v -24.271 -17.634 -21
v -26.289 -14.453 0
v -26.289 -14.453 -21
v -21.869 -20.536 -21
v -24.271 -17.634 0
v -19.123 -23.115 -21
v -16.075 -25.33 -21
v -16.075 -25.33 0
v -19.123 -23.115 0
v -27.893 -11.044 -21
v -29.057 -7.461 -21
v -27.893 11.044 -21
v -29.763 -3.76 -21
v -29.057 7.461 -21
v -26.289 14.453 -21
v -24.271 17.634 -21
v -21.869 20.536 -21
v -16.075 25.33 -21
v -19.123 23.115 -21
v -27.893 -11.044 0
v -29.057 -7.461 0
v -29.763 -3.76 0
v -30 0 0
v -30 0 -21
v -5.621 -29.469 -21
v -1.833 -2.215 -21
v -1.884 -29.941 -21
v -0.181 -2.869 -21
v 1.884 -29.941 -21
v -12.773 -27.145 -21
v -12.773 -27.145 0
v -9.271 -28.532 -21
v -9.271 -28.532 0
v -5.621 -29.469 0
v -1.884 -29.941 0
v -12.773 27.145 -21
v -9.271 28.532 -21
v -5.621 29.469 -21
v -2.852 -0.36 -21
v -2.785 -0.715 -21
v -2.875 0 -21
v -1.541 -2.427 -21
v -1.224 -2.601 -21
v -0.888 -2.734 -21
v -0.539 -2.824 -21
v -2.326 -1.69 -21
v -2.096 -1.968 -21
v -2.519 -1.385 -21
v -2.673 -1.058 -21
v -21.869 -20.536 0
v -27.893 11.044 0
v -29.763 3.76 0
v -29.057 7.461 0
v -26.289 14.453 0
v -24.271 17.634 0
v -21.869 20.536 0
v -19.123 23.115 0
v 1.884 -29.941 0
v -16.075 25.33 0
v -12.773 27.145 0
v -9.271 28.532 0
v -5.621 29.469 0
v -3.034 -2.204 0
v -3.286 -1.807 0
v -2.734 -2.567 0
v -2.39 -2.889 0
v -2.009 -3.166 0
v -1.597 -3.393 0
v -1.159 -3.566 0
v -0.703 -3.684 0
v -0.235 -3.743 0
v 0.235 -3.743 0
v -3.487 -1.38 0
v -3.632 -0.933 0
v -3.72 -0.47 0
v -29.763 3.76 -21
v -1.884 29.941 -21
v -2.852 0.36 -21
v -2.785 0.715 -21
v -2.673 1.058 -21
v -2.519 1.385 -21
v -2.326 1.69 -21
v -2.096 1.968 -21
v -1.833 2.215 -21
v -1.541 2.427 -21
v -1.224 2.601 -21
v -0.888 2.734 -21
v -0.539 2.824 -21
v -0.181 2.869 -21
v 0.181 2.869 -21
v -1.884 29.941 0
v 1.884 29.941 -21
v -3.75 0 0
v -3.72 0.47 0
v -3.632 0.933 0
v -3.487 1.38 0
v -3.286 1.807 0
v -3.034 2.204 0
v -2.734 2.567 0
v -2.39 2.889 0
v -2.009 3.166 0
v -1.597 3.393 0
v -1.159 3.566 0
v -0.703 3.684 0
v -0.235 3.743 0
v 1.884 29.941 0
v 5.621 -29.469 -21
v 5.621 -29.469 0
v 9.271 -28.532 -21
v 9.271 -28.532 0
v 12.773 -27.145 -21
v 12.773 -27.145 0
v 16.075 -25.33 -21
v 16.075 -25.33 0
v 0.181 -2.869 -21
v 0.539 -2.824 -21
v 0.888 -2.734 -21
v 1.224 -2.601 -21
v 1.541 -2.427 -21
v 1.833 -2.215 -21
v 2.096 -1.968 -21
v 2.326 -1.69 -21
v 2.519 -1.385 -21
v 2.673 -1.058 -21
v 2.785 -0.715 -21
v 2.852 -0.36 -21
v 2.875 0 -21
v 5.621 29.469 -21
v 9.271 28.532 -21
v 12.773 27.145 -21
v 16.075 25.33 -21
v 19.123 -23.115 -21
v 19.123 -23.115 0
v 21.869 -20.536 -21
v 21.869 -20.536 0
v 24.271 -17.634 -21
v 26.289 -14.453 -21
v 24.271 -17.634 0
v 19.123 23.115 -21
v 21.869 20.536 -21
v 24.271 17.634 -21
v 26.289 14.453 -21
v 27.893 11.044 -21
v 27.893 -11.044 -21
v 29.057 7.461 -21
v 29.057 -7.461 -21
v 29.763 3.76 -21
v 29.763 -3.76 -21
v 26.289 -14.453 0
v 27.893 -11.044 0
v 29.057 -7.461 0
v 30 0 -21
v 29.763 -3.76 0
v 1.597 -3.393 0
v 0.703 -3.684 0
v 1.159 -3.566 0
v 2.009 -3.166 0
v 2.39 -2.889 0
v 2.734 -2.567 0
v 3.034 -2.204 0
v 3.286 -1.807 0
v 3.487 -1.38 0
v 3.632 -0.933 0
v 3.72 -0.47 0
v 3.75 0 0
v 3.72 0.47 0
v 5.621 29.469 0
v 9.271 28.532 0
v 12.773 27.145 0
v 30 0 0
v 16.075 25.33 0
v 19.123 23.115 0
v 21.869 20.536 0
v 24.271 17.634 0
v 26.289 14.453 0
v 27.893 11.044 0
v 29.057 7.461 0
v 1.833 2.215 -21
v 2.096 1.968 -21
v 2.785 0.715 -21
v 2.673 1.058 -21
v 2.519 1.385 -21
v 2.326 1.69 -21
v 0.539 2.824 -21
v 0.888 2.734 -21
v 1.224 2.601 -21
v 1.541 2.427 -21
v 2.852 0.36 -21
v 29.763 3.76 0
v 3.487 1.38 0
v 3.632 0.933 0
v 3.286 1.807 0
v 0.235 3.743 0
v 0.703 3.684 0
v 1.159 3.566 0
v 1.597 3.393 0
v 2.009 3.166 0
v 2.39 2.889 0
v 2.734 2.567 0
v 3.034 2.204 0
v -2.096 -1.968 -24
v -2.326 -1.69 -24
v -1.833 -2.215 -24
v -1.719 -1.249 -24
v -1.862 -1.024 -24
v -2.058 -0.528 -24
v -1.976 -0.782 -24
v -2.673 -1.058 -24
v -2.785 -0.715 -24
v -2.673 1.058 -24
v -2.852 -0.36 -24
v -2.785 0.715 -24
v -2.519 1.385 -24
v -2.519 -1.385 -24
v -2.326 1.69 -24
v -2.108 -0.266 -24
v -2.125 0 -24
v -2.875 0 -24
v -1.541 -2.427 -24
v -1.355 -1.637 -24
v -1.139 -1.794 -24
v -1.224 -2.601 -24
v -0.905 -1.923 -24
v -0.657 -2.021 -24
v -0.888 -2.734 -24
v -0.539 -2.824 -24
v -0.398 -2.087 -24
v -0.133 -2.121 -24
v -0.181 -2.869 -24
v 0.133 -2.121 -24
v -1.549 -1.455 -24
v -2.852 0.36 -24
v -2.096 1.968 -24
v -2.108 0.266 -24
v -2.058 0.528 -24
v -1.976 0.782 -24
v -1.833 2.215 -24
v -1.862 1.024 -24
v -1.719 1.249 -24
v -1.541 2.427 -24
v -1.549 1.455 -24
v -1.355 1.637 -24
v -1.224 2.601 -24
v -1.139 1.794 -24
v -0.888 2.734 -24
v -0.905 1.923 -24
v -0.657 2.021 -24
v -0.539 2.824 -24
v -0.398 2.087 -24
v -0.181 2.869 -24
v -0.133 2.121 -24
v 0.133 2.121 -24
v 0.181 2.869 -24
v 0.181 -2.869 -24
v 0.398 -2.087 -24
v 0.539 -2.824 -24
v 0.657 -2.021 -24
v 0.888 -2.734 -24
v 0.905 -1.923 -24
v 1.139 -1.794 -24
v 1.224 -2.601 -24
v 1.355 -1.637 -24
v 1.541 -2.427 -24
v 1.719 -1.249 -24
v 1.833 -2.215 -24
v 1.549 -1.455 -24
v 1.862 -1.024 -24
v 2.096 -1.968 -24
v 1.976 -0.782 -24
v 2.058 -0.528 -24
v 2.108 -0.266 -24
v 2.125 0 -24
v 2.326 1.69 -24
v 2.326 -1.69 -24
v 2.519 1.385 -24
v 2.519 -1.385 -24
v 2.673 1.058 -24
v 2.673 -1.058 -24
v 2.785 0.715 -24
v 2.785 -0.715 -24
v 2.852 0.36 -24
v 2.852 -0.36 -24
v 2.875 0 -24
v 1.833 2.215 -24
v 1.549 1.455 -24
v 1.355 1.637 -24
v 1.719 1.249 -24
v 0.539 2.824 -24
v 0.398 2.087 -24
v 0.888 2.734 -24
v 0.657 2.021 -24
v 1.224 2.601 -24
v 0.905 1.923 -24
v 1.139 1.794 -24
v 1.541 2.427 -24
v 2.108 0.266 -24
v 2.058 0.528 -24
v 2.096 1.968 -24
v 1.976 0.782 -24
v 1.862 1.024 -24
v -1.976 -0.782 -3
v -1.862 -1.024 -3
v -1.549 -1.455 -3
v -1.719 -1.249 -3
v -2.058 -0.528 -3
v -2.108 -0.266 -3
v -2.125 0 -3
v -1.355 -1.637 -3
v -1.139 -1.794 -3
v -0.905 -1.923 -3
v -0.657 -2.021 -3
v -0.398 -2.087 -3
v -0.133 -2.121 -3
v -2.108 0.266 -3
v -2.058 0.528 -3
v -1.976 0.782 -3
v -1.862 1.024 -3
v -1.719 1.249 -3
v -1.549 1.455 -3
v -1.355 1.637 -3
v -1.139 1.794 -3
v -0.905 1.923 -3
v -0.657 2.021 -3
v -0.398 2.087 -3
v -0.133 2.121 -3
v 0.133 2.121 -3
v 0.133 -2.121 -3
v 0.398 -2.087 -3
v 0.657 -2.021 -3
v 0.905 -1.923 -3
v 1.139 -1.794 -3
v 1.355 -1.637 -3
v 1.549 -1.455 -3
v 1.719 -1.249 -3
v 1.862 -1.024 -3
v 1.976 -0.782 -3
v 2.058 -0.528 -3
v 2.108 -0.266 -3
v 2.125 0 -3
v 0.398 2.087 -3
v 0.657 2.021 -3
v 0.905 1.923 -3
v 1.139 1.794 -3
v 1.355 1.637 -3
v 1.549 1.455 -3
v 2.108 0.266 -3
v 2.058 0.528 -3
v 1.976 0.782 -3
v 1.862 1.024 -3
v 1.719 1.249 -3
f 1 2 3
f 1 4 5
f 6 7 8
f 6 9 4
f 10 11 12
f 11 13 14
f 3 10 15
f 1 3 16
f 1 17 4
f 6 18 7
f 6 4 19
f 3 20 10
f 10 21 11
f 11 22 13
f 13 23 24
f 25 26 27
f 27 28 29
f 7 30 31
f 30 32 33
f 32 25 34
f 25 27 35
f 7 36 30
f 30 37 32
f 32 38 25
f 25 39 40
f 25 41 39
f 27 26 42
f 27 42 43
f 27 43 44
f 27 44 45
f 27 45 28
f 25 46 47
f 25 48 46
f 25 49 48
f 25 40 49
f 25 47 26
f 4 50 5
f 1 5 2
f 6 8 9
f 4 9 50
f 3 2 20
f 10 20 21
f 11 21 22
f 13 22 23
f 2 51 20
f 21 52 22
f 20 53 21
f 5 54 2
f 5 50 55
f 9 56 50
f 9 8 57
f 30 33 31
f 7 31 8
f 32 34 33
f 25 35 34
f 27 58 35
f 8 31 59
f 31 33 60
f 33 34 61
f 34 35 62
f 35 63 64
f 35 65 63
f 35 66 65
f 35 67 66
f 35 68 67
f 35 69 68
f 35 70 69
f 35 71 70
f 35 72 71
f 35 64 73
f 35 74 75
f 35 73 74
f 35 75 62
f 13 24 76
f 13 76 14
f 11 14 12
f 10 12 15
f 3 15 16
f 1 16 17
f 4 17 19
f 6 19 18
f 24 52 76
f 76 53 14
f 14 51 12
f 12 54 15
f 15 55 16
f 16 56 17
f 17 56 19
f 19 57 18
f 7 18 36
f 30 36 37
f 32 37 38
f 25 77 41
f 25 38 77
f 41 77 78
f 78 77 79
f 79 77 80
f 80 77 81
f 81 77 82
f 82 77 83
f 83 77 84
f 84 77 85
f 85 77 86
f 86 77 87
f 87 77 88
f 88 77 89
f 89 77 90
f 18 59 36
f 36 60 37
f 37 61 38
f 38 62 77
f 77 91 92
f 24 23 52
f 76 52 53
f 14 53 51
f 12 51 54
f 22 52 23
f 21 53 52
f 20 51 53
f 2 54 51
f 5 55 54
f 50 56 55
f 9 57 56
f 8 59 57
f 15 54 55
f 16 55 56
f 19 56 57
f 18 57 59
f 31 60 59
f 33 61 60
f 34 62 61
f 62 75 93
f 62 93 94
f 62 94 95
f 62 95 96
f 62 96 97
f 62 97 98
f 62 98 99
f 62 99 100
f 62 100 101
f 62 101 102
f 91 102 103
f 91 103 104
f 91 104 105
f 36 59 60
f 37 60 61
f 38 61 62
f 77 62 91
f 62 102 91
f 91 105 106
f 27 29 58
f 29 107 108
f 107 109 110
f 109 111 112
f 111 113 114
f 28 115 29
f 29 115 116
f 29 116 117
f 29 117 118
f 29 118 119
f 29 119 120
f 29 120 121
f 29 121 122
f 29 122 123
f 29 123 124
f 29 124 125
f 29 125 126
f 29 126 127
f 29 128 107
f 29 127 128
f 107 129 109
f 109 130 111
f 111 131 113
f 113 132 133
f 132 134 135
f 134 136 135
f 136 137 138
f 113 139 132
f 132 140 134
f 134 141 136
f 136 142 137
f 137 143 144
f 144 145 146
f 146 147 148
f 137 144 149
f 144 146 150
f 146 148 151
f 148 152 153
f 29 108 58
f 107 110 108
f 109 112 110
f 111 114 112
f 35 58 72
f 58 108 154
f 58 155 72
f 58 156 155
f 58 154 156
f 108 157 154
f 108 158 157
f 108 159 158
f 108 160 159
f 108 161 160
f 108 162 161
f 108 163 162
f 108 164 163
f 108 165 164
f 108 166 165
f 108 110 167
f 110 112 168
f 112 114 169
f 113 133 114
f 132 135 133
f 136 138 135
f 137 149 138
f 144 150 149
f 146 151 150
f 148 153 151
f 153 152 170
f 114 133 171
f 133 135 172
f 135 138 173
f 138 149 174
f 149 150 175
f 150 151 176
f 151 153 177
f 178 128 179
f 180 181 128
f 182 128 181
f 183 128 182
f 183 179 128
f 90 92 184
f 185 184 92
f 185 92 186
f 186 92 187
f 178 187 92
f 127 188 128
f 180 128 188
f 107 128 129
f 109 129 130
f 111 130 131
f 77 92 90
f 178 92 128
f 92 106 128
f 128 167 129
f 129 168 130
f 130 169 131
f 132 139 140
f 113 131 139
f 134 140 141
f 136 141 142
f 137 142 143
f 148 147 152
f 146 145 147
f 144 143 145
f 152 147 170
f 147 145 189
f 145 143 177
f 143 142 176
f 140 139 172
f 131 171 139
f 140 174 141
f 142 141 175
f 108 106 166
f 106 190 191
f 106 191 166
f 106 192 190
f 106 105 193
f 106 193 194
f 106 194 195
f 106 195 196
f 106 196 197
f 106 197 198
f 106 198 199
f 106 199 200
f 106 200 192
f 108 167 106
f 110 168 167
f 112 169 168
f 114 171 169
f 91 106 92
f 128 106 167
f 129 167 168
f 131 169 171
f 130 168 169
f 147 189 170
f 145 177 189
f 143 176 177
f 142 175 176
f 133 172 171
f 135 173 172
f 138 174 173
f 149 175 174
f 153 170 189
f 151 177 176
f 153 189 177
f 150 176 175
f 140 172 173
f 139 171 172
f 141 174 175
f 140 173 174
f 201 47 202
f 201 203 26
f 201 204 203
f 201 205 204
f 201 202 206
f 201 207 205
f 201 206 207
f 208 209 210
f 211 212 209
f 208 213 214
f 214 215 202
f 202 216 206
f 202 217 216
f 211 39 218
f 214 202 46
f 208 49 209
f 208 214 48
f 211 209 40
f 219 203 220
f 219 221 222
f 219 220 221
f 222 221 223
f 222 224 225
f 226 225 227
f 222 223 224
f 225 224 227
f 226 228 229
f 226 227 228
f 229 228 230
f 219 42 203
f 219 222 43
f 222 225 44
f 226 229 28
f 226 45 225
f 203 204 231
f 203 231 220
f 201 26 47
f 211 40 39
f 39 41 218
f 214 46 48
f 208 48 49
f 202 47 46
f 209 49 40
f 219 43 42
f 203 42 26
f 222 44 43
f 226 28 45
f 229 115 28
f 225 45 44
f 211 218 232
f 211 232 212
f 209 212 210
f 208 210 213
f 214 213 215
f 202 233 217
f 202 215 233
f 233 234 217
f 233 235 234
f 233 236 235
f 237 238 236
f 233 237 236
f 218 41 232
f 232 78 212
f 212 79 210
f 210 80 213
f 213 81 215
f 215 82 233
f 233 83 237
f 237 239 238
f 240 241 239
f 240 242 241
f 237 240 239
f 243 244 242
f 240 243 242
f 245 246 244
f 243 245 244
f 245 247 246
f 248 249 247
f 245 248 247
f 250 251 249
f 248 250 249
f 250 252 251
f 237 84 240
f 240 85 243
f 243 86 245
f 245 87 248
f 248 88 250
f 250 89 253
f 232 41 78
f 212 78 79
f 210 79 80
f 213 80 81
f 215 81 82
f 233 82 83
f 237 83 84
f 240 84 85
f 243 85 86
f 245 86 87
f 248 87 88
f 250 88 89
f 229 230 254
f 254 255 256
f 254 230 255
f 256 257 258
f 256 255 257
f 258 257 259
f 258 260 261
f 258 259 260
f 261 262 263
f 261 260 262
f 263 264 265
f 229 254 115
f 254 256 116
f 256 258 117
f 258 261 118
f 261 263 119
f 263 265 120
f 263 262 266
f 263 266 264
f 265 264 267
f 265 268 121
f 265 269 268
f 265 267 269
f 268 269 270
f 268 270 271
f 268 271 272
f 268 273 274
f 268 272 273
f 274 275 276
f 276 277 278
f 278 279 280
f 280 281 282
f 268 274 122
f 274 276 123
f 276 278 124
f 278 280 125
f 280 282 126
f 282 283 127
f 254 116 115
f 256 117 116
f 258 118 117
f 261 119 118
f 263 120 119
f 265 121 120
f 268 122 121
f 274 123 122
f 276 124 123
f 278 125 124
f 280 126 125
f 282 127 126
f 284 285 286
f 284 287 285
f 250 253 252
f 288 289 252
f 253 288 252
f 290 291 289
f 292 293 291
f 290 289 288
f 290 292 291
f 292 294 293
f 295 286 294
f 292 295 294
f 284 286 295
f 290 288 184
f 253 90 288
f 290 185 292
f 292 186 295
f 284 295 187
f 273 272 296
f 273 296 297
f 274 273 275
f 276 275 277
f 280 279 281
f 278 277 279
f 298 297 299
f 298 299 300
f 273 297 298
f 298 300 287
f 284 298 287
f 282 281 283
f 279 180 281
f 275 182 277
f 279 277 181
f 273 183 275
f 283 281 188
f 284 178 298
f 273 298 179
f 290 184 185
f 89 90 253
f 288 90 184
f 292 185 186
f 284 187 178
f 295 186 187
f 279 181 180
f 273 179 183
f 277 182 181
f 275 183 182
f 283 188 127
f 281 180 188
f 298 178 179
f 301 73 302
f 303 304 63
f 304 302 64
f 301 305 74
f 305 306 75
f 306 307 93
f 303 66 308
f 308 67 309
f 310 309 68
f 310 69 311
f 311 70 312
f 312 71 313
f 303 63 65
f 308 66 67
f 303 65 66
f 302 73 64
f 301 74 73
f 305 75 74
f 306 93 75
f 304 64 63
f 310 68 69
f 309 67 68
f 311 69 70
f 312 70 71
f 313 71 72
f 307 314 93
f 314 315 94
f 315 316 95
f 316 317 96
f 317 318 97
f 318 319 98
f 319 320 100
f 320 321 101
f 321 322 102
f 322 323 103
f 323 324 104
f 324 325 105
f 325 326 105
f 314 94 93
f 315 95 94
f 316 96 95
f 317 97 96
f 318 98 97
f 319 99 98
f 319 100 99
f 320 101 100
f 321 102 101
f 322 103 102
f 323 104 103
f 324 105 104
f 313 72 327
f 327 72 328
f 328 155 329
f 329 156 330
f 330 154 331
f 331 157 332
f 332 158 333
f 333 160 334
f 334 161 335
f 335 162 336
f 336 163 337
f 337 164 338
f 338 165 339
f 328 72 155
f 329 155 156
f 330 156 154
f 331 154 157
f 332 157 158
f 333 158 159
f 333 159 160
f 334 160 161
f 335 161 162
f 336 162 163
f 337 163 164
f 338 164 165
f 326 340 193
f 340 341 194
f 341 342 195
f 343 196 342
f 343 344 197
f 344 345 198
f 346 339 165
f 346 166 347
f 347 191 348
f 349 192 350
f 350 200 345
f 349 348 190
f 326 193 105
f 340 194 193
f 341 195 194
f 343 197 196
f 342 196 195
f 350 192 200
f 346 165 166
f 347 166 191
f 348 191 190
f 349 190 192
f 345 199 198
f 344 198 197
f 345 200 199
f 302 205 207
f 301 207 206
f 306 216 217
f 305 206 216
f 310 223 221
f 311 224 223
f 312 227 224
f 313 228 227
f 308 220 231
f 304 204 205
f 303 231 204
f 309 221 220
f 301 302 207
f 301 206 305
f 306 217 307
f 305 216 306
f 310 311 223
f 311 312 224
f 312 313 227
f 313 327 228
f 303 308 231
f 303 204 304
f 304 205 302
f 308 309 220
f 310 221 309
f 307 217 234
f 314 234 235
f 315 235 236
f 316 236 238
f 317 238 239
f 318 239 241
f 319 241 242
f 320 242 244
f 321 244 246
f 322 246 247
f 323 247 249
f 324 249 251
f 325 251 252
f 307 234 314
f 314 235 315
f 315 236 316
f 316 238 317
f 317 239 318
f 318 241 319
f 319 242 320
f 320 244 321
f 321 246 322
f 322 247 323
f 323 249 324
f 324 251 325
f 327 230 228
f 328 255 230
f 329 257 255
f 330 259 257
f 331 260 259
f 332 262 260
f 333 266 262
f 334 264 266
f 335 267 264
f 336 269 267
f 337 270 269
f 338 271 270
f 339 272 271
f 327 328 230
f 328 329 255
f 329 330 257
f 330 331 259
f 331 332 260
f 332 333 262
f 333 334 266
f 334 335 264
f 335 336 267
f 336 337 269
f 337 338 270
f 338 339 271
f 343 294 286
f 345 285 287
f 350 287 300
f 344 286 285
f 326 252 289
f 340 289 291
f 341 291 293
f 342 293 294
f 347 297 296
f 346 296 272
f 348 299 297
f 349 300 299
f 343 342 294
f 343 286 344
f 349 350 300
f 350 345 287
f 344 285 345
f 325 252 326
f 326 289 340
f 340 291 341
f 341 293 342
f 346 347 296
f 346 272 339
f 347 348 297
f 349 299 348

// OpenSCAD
$fn = 50;

difference() {
	union() {
		translate(v = [0, 0, -21.0]) {
			cylinder(h = 21, r = 30.0);
		}
		#translate(v = [0, 0, -24.0]) {
			cylinder(h = 24, r = 2.875);
		}
	}
	union() {
		translate(v = [0, 0, 0]) {
			rotate(a = [0, 0, 0]) {
				difference() {
					union() {
						translate(v = [0, 0, -24.0]) {
							cylinder(h = 24, r = 2.0);
						}
						translate(v = [0, 0, -3]) {
							cylinder(h = 3, r1 = 2.125, r2 = 3.75);
						}
						translate(v = [0, 0, -24.0]) {
							cylinder(h = 24, r = 2.125);
						}
						translate(v = [0, 0, -24.0]) {
							cylinder(h = 24, r = 2.0);
						}
					}
					union();
				}
			}
		}
	}
}
